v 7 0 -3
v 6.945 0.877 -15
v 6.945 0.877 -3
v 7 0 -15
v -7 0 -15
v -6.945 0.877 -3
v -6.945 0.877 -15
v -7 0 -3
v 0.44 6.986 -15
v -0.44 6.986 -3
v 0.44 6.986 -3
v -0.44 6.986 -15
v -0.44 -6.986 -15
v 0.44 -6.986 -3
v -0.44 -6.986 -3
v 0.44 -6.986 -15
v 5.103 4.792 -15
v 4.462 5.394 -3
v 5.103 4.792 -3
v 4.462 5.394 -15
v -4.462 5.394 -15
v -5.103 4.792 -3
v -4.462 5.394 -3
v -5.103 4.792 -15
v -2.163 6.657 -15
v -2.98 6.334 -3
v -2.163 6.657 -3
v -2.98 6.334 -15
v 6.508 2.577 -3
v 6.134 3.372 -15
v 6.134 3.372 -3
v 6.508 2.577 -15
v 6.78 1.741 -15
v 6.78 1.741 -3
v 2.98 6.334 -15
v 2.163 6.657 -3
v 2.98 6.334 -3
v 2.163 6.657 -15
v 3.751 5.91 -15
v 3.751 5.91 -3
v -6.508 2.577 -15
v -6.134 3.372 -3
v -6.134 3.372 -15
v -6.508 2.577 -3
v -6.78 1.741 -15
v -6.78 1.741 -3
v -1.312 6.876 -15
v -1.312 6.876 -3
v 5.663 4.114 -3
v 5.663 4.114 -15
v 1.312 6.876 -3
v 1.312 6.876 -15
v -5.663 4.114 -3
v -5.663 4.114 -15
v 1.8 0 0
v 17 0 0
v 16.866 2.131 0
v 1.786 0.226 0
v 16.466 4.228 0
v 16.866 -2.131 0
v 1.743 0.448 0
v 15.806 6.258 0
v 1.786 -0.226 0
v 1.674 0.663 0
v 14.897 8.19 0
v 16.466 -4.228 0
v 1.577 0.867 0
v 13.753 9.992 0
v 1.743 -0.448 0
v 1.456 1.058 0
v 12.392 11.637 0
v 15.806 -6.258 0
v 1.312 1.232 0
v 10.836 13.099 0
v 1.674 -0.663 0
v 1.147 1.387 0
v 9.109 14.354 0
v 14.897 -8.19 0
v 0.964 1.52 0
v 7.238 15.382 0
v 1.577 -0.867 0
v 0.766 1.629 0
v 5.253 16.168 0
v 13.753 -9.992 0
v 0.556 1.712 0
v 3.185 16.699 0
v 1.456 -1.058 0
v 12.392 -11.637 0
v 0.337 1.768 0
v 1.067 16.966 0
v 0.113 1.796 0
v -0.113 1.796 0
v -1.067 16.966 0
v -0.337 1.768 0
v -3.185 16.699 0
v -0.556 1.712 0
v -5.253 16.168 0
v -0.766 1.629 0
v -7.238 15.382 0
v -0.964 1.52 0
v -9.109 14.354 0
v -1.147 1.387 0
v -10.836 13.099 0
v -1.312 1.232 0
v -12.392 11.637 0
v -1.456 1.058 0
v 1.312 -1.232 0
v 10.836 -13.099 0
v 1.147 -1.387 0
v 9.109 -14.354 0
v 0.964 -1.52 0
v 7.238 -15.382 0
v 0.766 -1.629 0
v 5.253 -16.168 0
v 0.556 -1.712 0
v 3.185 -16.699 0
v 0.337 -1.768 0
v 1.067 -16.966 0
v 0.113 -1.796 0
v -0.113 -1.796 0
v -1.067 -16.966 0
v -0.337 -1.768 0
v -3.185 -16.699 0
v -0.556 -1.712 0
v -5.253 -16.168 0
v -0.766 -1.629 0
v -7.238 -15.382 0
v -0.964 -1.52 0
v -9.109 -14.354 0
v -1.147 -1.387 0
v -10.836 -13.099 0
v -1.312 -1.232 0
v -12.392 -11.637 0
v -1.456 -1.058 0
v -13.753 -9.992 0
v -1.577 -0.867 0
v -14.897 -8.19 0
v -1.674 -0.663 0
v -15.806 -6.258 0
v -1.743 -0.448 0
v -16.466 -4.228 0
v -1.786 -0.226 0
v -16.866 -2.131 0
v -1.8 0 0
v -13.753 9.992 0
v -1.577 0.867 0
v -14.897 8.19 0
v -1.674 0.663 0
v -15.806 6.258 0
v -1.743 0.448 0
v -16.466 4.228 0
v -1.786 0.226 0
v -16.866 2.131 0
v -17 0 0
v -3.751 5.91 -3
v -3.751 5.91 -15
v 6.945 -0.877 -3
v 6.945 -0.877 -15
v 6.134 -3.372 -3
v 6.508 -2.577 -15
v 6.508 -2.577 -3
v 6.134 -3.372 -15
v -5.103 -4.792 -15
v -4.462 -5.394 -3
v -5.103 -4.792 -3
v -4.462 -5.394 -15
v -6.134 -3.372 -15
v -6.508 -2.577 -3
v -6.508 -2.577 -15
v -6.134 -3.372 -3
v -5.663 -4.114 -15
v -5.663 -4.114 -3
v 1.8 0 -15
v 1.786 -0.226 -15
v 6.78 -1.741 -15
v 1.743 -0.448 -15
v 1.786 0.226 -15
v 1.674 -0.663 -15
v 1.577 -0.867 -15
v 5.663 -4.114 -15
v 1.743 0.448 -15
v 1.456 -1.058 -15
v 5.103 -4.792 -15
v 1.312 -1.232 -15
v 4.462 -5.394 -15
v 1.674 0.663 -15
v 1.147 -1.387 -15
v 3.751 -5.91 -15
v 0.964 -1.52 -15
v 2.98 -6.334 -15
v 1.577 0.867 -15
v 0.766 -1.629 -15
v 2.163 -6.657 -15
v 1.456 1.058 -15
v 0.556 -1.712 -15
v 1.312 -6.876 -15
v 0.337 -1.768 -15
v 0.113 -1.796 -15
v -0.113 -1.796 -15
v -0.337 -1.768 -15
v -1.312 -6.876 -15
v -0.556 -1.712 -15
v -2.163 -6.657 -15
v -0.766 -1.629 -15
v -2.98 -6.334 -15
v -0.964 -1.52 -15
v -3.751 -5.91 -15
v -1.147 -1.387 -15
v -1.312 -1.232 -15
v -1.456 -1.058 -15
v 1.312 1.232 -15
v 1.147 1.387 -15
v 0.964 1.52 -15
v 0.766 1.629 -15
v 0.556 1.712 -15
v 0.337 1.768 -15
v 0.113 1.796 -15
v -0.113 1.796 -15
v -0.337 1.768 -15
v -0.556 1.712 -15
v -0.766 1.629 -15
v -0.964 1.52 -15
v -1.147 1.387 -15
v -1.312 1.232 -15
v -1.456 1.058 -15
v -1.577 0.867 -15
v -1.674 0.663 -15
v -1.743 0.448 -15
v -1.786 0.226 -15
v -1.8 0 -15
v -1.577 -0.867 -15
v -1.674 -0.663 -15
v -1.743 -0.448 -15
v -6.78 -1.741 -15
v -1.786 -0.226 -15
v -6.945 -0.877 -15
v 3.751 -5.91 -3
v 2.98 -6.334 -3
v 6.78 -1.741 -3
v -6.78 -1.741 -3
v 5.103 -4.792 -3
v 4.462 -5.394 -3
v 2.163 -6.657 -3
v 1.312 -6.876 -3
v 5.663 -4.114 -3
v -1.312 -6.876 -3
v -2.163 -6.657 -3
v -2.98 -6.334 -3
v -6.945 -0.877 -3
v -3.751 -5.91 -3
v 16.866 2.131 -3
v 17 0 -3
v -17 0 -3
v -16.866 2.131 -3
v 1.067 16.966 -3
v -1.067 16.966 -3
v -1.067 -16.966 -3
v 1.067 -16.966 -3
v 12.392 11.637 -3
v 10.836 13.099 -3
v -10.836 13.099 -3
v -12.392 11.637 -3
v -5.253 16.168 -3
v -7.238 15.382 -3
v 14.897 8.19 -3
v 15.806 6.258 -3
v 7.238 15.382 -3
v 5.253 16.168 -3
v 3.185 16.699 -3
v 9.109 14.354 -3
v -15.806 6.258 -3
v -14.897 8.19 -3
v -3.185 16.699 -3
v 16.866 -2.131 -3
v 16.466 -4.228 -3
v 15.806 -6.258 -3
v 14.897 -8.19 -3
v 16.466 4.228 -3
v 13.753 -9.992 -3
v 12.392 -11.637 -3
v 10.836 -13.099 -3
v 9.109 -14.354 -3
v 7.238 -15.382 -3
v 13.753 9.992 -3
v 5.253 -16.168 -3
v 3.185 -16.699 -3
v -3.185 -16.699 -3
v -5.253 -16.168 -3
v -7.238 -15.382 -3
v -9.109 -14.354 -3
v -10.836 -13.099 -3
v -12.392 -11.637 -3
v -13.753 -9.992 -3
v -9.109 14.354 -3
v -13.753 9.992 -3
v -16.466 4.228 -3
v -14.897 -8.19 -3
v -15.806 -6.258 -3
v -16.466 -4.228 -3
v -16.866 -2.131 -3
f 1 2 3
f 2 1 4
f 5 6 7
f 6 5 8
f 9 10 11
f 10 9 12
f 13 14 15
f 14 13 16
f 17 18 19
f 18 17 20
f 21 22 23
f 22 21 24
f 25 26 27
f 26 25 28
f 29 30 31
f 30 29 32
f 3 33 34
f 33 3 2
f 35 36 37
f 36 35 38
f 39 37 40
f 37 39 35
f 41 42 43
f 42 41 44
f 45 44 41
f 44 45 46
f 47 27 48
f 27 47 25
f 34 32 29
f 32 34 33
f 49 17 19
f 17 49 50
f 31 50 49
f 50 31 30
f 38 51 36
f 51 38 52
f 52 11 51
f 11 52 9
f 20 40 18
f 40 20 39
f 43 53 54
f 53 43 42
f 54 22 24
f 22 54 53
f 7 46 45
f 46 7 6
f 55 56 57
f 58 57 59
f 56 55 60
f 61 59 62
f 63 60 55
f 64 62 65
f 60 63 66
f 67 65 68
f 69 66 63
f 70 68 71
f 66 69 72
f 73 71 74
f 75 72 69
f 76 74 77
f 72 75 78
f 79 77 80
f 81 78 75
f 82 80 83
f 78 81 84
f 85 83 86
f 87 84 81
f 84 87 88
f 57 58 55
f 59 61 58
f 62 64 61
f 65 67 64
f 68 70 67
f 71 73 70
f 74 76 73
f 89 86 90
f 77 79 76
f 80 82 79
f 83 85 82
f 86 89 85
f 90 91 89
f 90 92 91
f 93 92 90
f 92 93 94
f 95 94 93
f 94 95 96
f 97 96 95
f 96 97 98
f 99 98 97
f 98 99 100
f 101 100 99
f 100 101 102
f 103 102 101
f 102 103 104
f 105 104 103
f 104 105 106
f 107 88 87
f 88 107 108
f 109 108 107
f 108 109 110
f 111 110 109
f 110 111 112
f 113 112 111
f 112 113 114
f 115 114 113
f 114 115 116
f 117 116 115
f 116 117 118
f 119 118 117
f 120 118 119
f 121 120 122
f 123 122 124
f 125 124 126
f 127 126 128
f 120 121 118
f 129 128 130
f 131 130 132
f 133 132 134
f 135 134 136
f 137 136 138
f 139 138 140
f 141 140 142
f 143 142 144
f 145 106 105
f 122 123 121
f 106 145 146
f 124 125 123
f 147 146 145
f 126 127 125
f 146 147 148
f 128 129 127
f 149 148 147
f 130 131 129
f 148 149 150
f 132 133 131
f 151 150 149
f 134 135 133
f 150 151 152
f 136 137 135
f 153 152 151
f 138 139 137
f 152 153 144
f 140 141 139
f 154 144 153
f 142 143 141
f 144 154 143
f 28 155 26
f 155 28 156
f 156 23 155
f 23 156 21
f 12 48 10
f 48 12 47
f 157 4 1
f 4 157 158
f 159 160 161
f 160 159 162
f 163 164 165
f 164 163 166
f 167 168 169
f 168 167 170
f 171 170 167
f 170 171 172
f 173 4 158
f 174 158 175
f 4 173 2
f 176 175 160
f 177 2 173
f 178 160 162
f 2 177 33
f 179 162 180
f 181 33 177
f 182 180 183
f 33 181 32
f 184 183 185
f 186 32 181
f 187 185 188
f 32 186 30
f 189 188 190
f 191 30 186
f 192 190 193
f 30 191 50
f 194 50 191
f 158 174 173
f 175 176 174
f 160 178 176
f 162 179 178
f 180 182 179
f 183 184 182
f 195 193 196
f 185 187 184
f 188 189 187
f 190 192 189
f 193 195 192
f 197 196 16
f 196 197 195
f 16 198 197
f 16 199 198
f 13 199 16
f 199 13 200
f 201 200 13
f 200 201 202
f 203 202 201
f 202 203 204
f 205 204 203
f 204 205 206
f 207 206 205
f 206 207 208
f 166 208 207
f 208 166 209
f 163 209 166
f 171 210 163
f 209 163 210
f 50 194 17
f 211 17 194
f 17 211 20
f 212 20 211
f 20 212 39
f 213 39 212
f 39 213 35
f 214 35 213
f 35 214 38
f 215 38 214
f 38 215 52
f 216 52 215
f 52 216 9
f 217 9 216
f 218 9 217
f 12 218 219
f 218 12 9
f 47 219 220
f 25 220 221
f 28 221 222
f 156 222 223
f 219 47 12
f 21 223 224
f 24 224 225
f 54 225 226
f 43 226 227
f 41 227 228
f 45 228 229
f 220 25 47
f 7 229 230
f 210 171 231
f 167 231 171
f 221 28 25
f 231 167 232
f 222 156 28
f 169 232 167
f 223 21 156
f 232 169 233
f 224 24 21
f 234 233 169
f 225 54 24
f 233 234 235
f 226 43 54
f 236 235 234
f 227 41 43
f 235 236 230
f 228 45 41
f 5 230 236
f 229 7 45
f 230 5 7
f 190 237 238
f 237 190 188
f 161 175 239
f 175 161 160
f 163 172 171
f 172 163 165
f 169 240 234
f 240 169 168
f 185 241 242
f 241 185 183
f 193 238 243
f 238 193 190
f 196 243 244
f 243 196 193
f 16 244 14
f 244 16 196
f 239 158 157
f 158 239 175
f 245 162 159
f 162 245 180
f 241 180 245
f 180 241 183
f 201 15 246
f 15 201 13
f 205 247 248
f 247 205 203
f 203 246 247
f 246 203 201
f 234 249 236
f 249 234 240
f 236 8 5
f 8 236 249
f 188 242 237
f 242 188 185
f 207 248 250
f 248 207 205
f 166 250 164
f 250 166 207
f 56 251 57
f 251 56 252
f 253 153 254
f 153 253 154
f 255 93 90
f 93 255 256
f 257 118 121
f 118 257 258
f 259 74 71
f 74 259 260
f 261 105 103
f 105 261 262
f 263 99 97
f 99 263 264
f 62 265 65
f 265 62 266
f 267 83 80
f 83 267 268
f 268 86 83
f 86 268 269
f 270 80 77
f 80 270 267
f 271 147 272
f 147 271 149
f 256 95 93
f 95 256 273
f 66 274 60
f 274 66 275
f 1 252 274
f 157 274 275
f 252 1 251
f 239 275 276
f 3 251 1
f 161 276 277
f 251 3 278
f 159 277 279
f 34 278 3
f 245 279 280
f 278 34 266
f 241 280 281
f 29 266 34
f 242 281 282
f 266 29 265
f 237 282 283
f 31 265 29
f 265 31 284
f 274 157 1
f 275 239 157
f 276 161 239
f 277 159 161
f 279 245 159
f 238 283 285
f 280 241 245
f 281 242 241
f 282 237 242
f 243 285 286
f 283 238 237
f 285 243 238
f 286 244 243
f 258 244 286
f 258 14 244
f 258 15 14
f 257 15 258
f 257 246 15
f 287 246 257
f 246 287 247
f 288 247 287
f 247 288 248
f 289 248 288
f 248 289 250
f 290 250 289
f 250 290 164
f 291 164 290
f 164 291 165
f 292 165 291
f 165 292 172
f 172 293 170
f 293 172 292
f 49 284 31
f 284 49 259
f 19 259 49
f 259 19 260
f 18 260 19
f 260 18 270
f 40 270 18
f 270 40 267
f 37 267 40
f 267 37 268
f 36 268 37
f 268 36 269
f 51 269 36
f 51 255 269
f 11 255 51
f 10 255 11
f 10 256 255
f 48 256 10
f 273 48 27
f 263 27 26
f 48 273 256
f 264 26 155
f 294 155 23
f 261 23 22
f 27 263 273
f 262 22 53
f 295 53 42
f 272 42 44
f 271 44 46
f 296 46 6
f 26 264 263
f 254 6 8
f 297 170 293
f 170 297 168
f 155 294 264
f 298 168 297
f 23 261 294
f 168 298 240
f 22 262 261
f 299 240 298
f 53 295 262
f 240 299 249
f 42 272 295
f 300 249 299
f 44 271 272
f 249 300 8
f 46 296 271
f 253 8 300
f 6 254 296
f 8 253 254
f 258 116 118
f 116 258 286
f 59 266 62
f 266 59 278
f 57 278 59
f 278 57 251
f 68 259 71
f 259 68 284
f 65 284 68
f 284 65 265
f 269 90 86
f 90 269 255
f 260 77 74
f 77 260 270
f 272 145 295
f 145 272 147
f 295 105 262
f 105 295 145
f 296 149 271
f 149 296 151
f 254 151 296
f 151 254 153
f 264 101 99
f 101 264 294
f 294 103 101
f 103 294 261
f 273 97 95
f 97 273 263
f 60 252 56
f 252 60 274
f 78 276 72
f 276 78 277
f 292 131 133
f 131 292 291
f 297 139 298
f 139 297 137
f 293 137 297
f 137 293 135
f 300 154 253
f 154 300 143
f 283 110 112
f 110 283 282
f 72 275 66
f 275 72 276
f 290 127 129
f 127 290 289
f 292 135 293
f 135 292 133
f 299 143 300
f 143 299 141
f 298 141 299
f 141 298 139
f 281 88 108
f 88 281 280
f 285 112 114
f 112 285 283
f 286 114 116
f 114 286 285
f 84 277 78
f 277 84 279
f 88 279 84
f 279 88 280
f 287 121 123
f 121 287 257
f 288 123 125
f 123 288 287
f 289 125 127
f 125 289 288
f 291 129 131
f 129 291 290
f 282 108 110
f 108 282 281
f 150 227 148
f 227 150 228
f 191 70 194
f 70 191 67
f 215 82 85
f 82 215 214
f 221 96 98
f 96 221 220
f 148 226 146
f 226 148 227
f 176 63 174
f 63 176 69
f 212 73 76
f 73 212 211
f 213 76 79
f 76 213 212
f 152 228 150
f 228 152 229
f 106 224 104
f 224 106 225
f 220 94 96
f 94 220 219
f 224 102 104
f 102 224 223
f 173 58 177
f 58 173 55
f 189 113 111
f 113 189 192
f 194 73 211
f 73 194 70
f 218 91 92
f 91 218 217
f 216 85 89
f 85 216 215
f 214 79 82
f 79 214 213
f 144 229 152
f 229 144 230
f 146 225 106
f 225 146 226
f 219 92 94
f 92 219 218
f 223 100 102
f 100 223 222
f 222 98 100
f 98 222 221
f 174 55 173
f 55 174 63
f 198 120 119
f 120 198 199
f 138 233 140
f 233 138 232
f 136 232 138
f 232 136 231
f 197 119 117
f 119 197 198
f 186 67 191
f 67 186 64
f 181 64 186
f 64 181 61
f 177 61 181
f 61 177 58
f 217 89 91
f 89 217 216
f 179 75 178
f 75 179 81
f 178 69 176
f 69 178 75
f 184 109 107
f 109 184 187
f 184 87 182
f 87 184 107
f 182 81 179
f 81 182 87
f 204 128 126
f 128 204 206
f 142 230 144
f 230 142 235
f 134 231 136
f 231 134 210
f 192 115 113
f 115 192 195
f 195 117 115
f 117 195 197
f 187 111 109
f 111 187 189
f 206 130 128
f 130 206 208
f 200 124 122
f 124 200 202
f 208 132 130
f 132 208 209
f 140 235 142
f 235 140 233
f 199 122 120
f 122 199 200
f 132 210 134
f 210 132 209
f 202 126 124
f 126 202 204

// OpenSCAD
$fn = 50;


difference() {
	union() {
		translate(v = [0, 0, -15.0000000000]) {
			cylinder(h = 15, r = 7.0000000000);
		}
		translate(v = [0, 0, -3.0000000000]) {
			cylinder(h = 3, r = 17.0000000000);
		}
	}
	union() {
		#translate(v = [0, 0, -15]) {
			cylinder(h = 15, r = 1.8000000000);
		}
	}
}
